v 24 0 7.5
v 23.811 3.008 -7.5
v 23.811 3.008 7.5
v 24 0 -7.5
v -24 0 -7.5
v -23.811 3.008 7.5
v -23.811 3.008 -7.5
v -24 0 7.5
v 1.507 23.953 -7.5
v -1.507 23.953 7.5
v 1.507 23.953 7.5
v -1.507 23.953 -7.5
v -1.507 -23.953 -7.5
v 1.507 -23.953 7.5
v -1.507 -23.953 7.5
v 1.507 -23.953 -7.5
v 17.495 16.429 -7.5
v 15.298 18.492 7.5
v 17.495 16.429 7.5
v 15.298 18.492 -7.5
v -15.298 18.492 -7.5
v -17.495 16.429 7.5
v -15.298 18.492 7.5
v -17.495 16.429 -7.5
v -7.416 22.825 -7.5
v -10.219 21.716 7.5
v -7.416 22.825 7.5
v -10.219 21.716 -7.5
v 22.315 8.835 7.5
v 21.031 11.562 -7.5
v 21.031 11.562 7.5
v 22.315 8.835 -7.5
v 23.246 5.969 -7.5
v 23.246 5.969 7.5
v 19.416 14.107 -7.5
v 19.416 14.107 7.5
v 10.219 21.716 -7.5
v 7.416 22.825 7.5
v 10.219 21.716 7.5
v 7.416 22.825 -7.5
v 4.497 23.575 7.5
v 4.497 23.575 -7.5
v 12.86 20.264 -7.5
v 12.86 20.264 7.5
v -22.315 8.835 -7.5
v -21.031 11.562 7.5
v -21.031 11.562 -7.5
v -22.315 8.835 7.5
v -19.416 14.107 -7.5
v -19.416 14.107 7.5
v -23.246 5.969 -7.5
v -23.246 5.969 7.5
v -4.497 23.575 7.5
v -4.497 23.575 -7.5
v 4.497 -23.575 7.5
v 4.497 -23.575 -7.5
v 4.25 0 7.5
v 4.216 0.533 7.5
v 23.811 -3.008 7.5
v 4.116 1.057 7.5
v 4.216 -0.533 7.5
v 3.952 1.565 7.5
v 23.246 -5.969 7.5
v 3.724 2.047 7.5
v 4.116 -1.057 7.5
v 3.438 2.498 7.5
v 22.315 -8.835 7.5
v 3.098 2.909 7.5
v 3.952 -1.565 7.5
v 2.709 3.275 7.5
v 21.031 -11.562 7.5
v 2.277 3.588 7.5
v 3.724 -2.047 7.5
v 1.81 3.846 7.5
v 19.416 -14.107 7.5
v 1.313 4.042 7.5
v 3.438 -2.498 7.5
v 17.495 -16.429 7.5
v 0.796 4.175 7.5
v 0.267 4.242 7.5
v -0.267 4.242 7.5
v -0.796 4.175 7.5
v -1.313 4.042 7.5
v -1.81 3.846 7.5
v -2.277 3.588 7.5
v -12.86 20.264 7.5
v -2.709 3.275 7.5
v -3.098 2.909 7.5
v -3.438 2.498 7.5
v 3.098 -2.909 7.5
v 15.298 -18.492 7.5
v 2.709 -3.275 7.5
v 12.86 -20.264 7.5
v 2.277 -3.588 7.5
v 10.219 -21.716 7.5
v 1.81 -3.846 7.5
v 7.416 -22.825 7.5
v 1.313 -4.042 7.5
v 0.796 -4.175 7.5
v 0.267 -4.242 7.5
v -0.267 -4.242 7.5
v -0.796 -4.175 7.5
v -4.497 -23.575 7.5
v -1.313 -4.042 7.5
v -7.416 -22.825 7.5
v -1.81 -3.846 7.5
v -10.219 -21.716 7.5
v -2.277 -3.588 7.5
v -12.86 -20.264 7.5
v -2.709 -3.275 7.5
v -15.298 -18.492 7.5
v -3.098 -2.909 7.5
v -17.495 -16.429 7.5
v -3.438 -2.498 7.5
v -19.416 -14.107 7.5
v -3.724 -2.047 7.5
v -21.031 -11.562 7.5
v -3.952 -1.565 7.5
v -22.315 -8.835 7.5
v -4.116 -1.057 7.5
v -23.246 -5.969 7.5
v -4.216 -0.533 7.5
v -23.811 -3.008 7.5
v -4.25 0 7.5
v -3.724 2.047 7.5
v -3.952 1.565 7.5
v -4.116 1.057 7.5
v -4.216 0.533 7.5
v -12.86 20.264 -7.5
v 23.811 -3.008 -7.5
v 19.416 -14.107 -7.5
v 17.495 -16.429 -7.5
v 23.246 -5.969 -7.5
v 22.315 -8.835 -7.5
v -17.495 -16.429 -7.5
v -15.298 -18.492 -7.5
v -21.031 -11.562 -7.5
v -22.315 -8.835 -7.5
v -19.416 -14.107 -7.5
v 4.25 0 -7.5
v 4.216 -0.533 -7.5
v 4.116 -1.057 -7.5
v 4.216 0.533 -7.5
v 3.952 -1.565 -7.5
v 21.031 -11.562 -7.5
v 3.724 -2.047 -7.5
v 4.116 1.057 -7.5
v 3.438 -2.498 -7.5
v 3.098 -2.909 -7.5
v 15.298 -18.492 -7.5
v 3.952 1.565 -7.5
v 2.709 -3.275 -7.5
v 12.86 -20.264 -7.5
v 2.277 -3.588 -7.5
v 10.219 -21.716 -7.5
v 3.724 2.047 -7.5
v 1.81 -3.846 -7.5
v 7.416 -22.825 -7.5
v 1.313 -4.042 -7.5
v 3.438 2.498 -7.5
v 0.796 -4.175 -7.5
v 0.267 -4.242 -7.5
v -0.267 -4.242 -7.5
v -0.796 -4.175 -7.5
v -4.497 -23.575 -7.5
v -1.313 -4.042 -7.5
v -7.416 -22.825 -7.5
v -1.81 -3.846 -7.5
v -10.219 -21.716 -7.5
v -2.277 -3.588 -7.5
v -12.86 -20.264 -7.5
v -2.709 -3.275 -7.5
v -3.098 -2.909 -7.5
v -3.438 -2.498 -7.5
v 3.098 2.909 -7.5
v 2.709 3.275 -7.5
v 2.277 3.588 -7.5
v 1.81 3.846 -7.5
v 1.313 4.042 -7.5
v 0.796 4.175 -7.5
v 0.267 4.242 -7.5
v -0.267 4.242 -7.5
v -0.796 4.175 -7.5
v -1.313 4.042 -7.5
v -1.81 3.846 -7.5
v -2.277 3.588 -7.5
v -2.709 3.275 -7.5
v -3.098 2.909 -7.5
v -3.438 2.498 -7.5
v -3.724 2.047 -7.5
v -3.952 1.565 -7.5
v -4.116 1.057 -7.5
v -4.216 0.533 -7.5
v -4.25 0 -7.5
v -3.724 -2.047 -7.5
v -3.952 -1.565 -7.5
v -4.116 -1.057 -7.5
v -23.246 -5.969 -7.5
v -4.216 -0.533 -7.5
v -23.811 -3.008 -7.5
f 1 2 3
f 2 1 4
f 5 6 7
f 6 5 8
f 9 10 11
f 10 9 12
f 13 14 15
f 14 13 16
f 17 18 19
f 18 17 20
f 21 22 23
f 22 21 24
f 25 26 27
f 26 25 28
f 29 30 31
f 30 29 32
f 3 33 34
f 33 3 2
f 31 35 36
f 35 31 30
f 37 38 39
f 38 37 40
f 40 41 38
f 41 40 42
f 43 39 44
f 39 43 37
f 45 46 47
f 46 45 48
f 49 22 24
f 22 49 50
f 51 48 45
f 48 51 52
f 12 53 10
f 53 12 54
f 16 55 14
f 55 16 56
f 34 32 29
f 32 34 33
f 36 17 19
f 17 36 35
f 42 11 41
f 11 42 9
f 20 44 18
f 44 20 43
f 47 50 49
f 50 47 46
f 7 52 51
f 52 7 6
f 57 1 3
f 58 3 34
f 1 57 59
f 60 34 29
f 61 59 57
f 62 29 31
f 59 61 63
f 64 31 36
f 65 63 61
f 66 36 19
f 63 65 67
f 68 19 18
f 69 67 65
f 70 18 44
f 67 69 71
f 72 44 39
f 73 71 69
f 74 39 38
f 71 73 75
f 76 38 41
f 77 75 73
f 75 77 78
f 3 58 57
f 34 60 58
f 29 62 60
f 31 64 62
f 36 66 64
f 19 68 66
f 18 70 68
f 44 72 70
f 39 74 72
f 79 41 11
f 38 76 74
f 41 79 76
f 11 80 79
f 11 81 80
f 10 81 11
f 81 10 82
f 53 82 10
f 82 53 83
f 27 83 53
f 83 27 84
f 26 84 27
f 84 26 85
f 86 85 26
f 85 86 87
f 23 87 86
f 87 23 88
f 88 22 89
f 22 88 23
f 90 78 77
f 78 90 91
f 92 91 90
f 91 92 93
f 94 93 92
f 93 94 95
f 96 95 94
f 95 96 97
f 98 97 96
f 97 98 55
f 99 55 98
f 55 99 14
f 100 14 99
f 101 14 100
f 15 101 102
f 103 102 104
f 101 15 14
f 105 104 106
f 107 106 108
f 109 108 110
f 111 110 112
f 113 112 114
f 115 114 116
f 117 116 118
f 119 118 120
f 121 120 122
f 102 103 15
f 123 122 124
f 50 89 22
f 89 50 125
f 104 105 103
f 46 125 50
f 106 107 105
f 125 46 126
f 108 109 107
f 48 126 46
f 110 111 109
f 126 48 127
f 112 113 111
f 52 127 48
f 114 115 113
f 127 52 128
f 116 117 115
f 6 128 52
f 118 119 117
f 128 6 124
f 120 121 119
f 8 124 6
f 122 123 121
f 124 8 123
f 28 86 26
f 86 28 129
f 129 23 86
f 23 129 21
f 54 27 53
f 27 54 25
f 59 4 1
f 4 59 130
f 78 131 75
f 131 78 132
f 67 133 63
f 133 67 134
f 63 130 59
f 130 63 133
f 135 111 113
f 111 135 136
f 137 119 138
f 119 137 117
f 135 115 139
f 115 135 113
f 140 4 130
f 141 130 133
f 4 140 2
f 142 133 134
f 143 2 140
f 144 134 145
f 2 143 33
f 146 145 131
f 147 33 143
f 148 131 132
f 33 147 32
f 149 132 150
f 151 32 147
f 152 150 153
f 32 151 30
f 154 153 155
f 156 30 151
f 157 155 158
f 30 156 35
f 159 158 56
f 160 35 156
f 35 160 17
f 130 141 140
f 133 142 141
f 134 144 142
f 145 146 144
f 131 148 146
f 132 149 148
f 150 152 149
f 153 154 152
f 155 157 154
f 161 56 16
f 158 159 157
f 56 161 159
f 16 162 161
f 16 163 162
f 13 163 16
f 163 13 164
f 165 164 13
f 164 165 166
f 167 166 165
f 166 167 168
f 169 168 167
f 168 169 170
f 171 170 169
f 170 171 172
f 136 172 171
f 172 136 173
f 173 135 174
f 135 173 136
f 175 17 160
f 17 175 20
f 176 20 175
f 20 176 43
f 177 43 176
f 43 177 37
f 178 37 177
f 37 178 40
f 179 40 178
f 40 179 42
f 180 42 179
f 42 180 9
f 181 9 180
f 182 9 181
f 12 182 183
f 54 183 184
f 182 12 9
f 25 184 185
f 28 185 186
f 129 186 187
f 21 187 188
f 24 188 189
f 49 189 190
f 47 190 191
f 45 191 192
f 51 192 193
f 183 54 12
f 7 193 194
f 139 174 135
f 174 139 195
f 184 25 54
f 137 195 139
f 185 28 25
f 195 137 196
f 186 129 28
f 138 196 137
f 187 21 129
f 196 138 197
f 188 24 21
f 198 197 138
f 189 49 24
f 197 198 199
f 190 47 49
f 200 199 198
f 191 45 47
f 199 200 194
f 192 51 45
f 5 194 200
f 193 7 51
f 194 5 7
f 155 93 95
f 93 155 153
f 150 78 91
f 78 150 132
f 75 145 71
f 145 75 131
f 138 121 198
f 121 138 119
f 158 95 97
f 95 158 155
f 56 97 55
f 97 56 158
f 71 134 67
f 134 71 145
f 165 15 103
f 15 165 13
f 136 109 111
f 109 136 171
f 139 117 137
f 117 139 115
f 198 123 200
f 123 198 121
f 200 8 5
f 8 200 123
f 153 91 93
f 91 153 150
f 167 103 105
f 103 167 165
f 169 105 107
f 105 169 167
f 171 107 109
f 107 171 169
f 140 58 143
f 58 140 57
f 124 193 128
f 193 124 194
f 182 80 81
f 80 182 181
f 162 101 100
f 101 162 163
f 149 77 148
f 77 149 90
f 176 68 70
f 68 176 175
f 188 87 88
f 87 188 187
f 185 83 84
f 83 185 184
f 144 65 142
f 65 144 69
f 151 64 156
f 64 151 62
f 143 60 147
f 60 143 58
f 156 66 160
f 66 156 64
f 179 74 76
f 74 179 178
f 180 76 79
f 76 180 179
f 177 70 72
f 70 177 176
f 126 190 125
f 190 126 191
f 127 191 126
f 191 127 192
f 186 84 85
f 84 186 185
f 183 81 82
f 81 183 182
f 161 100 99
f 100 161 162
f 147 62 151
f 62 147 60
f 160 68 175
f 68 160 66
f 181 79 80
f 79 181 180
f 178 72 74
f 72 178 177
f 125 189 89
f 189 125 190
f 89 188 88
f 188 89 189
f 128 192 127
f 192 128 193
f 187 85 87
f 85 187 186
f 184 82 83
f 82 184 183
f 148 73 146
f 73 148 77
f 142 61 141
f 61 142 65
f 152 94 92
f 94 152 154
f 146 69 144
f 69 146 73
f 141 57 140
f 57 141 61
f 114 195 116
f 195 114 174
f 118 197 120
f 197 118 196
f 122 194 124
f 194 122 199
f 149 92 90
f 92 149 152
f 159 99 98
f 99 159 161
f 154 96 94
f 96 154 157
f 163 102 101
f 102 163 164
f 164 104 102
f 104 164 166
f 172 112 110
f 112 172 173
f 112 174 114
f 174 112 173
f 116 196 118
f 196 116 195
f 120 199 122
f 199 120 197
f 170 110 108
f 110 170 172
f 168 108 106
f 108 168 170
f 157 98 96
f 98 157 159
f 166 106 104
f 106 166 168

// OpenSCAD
$fn = 50;


difference() {
	union() {
		translate(v = [0, 0, -7.5000000000]) {
			cylinder(h = 15, r = 24.0000000000);
		}
	}
	union() {
		translate(v = [0, 0, -100.0000000000]) {
			cylinder(h = 200, r = 4.2500000000);
		}
	}
}
